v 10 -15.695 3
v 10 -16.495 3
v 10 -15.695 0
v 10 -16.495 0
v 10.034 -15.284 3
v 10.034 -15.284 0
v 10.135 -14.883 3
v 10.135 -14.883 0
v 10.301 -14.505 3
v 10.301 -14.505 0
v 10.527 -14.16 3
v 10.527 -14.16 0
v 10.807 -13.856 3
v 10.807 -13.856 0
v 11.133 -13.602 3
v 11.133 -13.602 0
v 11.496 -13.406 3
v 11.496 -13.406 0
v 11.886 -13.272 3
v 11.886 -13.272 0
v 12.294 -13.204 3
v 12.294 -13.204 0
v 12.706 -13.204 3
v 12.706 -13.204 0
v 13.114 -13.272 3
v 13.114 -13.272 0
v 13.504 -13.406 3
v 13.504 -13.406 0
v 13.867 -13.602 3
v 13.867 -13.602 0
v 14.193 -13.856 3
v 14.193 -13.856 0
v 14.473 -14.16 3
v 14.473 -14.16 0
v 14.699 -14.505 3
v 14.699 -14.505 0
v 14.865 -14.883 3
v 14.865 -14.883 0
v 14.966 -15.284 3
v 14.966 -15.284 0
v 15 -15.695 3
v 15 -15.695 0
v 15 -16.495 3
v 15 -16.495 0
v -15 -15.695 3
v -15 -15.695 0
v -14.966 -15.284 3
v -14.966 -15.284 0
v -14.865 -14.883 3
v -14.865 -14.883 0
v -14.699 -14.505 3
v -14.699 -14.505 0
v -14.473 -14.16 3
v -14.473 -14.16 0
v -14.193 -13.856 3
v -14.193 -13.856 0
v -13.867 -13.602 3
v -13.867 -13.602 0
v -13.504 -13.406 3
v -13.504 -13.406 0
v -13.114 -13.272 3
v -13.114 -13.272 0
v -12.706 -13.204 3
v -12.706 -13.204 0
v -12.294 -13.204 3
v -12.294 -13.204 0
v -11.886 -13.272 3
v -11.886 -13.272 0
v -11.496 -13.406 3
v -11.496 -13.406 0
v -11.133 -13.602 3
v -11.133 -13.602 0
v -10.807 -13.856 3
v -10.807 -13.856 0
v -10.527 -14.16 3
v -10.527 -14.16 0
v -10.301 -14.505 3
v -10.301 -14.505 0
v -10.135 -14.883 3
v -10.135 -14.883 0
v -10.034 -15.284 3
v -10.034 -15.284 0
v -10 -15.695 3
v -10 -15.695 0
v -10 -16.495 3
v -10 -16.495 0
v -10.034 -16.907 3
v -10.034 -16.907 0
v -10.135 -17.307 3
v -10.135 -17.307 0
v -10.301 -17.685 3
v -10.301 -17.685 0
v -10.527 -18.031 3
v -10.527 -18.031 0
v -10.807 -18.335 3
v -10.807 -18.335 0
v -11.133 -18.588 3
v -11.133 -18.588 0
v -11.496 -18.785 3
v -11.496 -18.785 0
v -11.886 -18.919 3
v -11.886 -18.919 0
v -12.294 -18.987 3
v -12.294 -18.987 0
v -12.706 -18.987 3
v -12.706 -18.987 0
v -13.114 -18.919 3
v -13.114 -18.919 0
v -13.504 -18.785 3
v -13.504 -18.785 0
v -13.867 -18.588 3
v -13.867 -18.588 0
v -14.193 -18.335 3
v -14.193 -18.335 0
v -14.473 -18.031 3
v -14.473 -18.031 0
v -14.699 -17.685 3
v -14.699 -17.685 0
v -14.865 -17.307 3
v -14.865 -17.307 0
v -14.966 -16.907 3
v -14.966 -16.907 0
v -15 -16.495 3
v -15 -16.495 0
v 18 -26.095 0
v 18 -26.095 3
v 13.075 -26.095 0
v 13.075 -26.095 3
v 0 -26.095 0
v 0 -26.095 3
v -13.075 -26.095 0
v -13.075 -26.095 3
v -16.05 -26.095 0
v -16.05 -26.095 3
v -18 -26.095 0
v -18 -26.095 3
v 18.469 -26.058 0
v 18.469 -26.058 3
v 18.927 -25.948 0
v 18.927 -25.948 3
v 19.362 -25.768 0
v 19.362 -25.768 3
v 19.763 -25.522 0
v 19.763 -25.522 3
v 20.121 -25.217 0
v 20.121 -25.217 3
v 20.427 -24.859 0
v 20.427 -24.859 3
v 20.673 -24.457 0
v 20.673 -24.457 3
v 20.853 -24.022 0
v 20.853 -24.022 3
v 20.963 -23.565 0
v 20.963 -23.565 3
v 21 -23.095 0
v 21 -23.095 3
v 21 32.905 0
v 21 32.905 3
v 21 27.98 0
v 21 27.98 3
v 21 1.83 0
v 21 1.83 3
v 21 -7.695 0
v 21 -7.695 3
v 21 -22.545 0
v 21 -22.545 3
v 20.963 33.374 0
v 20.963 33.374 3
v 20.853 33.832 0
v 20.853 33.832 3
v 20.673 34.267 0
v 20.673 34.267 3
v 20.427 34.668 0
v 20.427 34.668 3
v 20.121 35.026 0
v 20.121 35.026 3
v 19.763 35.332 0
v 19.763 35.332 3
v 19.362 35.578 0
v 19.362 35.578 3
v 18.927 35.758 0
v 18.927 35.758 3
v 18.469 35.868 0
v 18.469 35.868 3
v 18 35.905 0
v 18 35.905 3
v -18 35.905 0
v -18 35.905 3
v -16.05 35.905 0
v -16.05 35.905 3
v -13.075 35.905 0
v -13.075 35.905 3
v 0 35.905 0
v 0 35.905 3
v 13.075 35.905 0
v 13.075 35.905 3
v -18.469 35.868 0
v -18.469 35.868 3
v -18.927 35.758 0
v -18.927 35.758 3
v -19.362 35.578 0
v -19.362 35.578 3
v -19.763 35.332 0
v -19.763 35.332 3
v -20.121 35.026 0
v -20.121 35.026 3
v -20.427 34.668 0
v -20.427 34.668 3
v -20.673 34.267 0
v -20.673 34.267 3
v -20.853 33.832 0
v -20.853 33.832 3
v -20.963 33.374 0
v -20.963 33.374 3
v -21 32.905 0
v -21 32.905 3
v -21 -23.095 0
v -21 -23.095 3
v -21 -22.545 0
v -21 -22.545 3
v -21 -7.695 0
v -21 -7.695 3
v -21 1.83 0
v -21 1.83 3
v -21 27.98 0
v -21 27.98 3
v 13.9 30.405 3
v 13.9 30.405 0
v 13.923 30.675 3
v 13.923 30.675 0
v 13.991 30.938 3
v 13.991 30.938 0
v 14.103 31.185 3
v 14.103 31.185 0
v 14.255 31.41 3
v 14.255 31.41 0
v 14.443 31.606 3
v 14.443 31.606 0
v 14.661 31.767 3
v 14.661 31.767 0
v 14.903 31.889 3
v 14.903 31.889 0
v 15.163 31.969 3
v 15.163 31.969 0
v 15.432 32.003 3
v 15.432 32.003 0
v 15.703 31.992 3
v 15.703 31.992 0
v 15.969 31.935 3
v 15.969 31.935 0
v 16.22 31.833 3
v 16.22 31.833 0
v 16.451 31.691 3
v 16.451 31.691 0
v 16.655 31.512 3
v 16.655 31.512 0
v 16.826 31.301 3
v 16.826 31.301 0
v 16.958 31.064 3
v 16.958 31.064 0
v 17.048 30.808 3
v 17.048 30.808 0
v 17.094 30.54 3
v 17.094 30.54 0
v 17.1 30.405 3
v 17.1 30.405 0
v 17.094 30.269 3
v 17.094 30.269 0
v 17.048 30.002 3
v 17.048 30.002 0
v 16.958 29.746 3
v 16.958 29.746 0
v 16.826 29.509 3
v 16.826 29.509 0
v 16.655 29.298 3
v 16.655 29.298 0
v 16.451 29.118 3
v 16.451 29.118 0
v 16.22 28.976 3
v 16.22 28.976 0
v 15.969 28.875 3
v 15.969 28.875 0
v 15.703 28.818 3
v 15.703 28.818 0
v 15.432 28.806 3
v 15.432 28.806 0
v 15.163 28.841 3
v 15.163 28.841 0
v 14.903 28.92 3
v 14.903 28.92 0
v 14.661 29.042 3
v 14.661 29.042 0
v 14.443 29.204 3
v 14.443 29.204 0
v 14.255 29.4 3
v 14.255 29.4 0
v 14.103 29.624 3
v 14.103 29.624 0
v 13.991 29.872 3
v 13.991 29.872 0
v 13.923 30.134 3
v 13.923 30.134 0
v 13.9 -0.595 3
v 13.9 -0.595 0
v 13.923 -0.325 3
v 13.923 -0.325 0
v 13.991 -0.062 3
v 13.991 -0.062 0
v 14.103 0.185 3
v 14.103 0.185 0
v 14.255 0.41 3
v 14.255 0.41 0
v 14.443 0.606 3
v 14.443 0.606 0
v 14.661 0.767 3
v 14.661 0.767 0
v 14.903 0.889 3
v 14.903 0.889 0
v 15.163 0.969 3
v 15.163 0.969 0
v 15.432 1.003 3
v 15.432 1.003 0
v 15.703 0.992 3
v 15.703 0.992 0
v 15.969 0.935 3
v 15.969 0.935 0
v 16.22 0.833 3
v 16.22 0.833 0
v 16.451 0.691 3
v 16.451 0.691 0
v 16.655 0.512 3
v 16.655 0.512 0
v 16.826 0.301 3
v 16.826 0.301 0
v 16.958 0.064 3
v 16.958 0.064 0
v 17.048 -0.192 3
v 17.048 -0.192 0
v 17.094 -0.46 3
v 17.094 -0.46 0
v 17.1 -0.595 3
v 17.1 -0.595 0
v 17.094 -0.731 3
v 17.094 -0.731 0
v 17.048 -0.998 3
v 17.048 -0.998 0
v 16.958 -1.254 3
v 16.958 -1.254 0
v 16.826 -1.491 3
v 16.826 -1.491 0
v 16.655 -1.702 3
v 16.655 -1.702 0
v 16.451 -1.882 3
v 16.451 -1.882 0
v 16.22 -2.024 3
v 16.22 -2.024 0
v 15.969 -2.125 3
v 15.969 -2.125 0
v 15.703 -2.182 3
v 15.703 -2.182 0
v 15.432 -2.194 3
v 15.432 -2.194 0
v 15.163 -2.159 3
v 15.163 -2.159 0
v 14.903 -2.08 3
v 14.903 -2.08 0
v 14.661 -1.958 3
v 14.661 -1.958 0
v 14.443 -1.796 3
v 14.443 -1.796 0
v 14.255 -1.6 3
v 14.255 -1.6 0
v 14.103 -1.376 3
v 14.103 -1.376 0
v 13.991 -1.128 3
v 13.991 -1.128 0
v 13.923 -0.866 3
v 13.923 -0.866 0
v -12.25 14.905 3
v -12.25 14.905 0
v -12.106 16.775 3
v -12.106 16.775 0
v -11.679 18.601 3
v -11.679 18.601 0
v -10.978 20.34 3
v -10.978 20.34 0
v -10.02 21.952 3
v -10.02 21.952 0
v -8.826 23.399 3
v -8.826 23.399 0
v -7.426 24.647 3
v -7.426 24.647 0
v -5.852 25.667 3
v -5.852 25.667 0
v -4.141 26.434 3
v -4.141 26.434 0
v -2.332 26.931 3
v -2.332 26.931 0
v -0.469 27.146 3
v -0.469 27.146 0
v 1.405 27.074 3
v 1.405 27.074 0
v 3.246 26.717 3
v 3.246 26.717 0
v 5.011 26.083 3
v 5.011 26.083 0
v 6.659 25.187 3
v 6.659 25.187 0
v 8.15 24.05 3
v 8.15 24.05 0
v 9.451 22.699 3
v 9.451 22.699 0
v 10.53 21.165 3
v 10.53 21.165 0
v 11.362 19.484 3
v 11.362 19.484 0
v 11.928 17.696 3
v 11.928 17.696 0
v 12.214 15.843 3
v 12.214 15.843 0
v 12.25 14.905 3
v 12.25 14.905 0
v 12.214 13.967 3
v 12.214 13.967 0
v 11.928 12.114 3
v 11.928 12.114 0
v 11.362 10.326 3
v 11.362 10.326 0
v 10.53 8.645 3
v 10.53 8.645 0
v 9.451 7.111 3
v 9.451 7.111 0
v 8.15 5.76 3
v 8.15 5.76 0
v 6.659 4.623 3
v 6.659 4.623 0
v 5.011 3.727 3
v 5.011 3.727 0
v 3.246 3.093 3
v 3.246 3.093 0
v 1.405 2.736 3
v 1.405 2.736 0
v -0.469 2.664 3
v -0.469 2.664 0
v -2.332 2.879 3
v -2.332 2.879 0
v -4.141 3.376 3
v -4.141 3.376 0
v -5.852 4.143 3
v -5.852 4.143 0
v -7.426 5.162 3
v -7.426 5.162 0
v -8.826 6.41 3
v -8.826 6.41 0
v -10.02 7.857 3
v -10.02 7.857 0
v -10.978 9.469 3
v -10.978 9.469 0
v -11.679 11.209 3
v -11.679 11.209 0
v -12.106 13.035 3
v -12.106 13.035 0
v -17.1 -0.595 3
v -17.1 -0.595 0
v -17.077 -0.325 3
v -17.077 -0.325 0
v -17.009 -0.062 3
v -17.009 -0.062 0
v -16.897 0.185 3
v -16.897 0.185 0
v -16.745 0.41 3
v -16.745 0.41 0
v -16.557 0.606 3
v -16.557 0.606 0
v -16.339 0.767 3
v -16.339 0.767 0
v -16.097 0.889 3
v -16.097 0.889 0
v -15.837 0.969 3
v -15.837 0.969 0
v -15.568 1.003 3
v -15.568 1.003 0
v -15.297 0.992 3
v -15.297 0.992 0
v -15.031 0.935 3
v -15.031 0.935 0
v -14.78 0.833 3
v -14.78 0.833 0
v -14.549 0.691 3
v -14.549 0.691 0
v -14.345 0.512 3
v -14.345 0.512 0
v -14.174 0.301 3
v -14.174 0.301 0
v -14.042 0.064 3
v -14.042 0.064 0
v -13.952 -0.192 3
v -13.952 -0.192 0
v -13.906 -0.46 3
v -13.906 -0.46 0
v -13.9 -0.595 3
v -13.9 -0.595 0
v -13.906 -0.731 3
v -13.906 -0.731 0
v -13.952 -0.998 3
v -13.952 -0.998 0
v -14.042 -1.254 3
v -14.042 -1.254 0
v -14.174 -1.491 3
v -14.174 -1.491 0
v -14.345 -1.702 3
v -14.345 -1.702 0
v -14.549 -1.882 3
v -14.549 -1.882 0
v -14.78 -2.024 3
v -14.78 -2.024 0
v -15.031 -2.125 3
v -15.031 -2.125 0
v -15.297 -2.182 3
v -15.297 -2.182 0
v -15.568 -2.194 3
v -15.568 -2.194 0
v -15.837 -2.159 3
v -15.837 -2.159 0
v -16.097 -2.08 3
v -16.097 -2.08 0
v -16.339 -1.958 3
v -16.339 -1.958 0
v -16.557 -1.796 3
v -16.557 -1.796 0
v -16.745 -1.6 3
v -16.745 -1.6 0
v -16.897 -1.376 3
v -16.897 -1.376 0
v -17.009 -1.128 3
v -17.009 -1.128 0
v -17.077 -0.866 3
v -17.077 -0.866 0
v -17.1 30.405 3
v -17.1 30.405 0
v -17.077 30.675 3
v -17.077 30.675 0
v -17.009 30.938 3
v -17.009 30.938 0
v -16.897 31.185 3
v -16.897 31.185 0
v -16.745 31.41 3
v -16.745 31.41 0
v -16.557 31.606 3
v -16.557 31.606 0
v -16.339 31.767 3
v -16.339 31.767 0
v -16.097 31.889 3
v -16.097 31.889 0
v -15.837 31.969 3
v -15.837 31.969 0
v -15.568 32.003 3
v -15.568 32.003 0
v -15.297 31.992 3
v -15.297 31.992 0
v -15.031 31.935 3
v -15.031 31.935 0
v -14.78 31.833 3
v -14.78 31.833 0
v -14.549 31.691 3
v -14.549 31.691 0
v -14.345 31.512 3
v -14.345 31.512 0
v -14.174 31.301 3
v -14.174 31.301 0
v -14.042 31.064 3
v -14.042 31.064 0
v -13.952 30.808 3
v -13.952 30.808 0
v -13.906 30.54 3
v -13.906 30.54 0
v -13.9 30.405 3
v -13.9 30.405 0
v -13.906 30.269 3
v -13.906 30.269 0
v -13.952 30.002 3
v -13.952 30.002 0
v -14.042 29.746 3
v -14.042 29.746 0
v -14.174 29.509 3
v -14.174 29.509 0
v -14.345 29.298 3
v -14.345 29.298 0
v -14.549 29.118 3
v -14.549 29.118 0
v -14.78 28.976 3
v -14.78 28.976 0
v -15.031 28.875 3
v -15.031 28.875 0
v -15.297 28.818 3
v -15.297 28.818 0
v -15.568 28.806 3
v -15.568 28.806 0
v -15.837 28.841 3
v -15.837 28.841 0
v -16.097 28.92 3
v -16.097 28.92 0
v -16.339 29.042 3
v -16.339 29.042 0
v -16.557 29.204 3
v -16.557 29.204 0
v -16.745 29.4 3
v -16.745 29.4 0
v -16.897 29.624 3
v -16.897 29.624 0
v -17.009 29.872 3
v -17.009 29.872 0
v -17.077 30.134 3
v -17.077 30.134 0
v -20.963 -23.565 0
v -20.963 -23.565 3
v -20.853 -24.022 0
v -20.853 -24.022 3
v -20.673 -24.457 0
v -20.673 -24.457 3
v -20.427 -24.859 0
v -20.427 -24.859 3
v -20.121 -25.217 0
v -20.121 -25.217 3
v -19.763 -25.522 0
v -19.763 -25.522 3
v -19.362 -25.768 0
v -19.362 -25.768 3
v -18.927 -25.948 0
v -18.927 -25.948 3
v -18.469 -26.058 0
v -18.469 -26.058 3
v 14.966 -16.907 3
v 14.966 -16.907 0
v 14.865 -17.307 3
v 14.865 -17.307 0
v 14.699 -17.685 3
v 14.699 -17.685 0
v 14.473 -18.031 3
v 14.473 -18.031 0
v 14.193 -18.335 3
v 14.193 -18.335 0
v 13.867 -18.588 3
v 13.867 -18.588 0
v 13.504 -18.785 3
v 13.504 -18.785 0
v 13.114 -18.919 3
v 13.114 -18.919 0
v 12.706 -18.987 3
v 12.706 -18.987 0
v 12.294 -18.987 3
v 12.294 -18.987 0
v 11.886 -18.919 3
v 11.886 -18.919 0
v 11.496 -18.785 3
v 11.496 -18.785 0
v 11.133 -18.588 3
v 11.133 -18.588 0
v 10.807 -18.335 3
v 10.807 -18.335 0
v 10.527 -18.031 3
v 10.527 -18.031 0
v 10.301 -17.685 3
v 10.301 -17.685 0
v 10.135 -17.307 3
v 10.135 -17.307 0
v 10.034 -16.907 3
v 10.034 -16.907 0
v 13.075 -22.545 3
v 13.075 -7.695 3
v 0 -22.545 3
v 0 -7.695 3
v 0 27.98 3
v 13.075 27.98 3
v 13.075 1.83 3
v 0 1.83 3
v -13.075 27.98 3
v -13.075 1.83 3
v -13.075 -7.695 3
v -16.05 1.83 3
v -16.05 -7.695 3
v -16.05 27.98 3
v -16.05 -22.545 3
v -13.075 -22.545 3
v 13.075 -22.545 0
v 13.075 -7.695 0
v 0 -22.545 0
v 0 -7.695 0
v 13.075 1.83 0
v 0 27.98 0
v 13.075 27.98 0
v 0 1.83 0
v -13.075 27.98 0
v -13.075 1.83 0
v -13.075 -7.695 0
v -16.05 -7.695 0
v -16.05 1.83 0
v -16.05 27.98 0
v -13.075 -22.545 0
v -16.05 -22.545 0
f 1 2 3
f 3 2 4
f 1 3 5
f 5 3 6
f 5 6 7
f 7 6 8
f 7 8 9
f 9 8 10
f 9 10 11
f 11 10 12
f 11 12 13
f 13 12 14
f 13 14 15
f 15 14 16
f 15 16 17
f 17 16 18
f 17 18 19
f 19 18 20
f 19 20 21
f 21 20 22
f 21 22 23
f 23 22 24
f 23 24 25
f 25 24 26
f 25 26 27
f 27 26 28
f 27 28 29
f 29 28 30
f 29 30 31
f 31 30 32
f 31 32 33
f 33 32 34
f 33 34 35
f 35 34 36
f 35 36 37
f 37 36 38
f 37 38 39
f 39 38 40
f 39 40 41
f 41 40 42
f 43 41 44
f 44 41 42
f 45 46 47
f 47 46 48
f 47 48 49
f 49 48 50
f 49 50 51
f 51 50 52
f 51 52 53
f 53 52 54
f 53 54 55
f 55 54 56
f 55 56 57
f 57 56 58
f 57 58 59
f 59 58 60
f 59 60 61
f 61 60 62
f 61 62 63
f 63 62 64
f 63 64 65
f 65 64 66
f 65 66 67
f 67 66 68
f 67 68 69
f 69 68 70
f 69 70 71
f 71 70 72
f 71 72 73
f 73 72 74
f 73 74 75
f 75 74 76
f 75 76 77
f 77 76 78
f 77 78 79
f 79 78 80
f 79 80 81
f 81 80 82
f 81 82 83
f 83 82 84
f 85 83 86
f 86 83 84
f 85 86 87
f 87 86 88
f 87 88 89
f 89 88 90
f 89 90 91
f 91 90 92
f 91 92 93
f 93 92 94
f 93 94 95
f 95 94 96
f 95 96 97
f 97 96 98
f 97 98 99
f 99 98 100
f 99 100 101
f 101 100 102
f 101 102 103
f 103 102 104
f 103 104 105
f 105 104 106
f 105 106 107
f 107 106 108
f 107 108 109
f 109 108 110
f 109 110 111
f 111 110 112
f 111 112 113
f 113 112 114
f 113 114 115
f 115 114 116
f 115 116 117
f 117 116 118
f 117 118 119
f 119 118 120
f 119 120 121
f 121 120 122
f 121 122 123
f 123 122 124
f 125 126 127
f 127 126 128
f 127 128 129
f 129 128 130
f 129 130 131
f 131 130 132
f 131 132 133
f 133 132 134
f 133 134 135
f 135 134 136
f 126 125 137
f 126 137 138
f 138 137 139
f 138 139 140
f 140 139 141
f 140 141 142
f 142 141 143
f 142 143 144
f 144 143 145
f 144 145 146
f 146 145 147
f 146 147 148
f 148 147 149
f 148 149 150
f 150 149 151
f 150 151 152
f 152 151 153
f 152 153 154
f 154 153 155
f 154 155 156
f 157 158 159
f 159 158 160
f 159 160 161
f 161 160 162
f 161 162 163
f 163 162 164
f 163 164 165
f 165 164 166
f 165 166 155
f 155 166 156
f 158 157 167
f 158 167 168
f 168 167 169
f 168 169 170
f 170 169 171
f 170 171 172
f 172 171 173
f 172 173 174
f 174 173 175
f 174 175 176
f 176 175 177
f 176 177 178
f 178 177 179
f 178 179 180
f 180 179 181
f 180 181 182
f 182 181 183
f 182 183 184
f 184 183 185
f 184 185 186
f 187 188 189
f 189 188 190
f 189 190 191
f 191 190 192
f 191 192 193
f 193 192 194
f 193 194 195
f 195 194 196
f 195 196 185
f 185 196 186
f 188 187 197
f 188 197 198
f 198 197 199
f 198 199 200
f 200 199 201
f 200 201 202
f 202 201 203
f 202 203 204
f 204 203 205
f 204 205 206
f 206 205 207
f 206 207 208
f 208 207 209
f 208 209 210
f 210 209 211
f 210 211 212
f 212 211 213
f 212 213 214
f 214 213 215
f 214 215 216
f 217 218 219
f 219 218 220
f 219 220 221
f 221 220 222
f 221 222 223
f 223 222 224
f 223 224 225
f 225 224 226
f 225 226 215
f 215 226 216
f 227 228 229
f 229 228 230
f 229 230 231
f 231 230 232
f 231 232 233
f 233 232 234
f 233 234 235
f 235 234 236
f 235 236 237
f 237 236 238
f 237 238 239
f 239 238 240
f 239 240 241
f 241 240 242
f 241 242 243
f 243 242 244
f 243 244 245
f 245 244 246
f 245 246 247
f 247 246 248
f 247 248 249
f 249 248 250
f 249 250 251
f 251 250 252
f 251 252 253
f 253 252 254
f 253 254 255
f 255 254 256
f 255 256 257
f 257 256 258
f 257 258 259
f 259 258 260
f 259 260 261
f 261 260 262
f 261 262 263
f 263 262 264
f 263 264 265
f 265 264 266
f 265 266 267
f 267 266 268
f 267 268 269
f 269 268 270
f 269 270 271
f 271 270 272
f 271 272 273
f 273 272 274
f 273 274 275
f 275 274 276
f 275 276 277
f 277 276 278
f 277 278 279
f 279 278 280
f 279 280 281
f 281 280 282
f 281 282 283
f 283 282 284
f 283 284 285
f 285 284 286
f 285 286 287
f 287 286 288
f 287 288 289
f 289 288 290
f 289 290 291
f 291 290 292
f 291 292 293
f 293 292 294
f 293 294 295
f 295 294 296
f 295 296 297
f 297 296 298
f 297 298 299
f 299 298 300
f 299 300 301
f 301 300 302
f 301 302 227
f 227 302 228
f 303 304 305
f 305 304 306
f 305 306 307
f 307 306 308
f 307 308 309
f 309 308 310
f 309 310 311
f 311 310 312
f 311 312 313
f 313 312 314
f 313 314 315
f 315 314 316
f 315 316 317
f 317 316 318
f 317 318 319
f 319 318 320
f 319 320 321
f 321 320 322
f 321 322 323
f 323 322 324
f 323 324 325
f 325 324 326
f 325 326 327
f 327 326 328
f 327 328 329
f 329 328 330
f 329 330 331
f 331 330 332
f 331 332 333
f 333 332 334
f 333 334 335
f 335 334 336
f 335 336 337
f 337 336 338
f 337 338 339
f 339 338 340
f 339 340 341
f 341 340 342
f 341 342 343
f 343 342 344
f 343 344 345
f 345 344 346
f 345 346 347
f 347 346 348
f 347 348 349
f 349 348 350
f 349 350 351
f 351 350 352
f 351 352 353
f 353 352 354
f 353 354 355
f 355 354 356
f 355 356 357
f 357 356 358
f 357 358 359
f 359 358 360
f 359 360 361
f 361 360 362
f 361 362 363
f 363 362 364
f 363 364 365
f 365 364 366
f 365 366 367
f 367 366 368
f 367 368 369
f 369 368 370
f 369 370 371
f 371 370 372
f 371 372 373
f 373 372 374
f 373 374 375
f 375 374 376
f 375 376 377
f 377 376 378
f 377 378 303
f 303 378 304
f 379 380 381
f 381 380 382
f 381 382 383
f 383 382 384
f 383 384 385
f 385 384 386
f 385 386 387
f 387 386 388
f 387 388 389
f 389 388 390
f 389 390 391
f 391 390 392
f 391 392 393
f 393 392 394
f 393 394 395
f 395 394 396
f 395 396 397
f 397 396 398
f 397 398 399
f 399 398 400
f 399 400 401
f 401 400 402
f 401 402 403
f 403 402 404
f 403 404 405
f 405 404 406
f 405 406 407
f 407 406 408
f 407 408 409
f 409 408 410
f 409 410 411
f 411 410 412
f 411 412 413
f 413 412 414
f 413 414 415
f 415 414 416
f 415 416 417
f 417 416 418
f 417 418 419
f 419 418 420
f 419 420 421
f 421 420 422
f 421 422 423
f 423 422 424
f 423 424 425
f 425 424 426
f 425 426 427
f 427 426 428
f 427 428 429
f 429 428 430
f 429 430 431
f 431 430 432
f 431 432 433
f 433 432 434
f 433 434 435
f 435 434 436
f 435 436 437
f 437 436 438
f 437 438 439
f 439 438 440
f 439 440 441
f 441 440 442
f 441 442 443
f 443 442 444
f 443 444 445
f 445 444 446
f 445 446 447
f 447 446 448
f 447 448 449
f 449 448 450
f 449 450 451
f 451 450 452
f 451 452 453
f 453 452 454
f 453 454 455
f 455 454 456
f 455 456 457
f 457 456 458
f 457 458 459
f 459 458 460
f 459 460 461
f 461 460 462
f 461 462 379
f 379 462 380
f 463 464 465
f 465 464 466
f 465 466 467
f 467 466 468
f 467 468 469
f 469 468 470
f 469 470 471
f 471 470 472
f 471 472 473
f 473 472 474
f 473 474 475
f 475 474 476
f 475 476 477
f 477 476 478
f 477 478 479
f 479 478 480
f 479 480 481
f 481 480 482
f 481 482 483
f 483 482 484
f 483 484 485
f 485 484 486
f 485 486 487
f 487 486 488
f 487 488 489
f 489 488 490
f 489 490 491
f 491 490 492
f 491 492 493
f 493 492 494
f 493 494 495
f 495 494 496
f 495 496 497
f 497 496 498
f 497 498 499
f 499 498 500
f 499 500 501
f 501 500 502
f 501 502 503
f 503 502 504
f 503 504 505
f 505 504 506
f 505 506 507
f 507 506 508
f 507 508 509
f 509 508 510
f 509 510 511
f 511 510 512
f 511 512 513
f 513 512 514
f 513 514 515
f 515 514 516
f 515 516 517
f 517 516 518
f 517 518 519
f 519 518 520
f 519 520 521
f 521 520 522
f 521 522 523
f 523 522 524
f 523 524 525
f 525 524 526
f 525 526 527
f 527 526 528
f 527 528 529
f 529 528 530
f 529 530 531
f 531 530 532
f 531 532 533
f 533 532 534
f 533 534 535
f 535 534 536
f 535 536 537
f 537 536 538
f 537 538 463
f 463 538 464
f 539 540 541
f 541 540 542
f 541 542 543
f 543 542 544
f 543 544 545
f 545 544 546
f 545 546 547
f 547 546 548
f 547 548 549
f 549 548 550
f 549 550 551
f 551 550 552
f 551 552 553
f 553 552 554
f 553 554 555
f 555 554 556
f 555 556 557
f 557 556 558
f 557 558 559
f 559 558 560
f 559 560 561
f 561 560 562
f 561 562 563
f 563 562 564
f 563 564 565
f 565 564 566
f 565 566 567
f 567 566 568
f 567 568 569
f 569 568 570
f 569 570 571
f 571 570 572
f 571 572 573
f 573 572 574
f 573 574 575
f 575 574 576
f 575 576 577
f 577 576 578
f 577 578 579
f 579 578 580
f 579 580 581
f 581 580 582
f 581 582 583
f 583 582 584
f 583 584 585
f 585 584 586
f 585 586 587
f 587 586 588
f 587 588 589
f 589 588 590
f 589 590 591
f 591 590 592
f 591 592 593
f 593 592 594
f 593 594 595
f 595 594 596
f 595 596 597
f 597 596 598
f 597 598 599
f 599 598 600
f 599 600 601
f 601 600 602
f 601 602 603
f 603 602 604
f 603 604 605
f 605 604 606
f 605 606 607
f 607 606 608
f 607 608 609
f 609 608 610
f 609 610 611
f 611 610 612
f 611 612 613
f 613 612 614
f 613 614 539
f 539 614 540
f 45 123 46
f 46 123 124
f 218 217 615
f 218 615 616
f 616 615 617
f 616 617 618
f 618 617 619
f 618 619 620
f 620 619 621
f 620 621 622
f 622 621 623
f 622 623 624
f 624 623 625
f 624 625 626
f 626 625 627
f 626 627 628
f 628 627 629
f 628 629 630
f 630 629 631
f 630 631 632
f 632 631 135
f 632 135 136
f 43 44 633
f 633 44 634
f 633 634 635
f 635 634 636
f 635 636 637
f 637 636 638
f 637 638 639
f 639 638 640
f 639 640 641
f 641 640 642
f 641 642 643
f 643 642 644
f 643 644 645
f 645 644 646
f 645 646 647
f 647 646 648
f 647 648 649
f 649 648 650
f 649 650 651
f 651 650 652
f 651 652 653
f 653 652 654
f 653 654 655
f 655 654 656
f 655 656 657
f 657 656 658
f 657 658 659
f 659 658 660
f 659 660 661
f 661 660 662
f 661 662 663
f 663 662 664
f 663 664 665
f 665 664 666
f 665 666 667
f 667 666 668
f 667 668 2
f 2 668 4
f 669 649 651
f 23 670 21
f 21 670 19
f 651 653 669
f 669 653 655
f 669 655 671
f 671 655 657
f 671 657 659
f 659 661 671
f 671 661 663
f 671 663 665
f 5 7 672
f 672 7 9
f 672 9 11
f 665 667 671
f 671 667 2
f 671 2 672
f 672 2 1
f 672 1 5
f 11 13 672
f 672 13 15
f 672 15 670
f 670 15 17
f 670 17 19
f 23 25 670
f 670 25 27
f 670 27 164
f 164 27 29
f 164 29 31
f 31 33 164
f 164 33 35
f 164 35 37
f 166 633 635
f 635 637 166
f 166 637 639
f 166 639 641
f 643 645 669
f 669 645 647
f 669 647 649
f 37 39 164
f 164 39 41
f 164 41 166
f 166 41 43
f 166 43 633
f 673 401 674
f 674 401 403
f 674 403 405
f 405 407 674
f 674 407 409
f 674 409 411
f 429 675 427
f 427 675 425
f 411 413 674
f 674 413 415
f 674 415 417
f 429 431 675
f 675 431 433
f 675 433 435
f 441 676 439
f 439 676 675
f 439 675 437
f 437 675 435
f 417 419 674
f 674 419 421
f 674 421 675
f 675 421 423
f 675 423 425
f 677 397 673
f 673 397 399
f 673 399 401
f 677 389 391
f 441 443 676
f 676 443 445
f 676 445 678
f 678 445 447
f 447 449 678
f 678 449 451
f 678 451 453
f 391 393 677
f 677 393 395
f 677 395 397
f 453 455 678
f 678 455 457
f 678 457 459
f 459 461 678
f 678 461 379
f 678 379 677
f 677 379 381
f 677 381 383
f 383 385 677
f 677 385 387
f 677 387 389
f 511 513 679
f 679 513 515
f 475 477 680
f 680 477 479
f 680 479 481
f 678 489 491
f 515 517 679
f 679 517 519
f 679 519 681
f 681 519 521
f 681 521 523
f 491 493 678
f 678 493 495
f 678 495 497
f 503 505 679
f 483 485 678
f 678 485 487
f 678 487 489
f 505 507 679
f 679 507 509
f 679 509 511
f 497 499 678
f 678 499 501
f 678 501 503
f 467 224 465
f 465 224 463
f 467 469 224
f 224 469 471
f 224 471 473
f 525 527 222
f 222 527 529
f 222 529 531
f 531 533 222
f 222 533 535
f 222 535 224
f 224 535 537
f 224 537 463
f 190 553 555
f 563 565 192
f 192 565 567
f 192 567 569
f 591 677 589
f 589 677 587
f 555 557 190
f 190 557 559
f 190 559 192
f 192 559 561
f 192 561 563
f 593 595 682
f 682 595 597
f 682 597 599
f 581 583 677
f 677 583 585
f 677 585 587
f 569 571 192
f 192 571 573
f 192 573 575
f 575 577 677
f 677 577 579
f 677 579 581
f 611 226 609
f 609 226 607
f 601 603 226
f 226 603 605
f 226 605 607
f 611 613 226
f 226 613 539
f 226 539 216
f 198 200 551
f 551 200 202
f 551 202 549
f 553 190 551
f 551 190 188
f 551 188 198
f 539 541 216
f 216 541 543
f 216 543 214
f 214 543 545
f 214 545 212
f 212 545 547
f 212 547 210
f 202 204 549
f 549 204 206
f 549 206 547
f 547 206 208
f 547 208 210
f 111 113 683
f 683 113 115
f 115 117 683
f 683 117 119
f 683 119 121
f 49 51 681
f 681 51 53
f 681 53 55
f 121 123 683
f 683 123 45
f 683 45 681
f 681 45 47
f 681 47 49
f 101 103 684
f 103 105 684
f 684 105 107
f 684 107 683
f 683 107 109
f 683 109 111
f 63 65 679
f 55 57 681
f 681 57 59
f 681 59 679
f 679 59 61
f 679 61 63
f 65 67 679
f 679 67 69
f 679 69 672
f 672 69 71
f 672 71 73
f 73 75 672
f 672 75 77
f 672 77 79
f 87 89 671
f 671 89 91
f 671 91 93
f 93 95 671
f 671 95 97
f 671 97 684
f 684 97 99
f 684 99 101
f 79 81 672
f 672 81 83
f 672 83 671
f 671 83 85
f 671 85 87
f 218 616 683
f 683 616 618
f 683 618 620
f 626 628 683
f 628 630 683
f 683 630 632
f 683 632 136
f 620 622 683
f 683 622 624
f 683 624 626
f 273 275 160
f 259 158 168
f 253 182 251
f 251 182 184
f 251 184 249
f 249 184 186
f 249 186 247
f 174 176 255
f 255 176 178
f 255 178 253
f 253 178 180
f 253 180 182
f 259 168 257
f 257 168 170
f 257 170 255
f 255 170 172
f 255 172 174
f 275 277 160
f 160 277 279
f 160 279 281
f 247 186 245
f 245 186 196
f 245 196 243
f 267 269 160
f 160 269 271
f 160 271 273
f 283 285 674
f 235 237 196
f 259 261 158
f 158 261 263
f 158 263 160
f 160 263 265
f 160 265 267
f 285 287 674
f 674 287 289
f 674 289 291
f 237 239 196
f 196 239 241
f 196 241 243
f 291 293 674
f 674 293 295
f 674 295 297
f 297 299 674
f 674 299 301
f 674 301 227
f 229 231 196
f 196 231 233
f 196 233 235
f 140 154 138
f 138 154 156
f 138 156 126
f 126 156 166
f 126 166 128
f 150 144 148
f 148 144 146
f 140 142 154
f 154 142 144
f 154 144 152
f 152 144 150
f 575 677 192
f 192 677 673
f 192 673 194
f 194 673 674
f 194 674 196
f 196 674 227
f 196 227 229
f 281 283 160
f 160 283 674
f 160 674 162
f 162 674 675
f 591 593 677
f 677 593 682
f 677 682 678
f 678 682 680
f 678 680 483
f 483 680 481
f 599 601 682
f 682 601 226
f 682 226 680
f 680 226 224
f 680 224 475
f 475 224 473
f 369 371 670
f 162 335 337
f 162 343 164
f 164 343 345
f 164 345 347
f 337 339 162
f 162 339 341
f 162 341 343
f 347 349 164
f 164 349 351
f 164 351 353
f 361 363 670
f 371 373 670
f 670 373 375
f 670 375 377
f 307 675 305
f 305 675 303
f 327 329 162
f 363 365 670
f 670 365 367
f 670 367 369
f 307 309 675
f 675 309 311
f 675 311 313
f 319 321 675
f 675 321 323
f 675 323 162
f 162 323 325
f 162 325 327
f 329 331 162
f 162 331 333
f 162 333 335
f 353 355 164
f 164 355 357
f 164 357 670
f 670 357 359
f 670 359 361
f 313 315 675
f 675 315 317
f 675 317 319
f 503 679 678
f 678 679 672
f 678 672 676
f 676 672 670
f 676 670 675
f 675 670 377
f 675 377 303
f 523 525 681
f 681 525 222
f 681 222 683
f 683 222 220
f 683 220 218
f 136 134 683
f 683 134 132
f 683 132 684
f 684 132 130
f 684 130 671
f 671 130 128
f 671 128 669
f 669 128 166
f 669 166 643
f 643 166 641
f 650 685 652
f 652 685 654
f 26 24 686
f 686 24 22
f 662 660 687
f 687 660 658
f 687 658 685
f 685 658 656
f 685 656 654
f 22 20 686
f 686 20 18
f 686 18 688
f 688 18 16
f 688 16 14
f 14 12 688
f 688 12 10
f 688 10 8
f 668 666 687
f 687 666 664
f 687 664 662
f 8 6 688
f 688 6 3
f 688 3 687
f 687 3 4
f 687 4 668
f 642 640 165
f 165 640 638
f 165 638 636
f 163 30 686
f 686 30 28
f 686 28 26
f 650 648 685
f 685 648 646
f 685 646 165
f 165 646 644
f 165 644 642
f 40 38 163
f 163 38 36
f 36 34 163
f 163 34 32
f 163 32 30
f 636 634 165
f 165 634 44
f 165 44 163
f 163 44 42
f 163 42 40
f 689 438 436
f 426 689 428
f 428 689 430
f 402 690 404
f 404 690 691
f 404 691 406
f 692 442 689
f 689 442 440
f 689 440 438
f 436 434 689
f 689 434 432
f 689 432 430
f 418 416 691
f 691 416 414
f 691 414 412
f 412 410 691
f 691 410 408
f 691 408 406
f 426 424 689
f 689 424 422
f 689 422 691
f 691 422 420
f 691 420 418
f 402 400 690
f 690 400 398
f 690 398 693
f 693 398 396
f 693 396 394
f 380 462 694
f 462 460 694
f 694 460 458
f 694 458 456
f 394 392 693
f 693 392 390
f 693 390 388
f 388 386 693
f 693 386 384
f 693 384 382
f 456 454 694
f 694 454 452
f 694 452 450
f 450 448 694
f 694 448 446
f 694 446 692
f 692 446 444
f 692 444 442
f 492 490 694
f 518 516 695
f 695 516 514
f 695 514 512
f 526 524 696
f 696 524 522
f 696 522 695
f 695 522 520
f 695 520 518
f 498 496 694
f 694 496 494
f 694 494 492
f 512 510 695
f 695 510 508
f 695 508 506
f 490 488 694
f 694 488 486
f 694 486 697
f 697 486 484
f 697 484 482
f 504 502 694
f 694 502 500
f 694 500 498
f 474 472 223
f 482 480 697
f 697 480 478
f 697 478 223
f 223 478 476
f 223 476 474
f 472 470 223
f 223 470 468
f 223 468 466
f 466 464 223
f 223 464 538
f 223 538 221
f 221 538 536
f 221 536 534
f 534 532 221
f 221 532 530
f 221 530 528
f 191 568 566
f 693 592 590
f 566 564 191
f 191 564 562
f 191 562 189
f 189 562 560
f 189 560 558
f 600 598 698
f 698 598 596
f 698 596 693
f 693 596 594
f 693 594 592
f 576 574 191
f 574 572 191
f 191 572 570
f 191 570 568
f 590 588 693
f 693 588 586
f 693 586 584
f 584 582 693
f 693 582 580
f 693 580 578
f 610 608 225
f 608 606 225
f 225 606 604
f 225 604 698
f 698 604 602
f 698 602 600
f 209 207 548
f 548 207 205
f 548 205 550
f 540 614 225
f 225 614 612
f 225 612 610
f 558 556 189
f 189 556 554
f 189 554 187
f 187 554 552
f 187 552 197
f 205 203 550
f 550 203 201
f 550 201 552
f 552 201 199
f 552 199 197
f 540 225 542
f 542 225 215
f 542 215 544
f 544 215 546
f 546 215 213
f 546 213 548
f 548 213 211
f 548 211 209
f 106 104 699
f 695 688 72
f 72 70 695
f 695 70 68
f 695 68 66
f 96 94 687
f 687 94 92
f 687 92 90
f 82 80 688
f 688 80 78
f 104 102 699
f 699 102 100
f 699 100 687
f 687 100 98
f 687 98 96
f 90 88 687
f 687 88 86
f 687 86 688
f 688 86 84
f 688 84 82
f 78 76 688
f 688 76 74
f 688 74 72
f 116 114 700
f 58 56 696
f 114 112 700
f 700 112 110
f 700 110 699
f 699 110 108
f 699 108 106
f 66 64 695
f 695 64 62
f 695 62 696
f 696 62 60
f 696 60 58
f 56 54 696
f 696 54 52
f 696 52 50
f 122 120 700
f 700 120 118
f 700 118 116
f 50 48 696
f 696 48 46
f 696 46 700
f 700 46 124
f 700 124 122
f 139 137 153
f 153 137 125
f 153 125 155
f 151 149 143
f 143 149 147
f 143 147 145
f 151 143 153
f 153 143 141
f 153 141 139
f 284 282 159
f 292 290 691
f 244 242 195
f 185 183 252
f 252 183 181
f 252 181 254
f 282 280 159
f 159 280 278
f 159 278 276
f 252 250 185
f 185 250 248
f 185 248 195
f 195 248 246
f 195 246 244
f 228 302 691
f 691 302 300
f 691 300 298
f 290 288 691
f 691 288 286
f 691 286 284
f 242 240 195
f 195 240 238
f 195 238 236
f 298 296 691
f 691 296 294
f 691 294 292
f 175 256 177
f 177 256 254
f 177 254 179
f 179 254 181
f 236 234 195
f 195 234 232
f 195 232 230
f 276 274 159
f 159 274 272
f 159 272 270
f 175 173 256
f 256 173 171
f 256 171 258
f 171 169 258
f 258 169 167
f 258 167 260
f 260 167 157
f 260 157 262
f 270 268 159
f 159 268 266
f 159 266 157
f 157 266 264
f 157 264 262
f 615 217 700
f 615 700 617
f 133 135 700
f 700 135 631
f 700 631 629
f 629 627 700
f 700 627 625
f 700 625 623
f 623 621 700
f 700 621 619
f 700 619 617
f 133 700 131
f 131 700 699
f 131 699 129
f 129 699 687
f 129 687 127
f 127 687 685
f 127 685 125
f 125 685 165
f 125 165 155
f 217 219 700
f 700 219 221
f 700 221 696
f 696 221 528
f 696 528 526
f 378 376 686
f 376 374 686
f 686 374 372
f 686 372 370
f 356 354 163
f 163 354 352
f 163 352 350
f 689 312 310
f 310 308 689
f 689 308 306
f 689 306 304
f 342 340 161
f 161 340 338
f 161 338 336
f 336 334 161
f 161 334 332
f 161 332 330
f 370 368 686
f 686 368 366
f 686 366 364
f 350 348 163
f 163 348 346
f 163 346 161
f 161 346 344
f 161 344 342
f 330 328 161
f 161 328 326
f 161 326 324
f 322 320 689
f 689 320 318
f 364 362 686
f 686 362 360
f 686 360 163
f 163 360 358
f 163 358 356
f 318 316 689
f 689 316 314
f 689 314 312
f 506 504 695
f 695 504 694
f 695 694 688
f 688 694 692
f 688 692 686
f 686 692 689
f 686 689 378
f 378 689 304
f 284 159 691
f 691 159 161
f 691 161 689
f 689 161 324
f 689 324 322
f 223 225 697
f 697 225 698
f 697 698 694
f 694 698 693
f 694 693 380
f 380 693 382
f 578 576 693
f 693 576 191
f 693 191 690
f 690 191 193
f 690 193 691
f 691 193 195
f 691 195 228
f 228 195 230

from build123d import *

# Parameters (mm, degrees)
SKETCH_1_R      = 1.6
EXTRUDE_1_DEPTH = 3


with BuildPart() as part:
    # 草图1 → 凸台-拉伸1 (new body)
    # profile 1 of 2: a face of its own
    with BuildSketch(Plane.XY):
        with BuildLine():
            Line((0, 27.154799922), (0, 35.904799922))
            Line((0, 35.904799922), (-18, 35.904799922))
            ThreePointArc((-18, 35.904799922), (-20.121320344, 35.026120265), (-21, 32.904799922))
            Line((-21, 32.904799922), (-21, -23.095200078))
            ThreePointArc((-21, -23.095200078), (-20.121320344, -25.216520422), (-18, -26.095200078))
            Line((-18, -26.095200078), (0, -26.095200078))
            Line((0, -26.095200078), (0, 2.654799922))
            ThreePointArc((0, 2.654799922), (-12.25, 14.904799922), (0, 27.154799922))
        make_face()
        with BuildLine():
            ThreePointArc((-10, -16.495200078), (-12.5, -18.995200078), (-15, -16.495200078))
            Line((-15, -16.495200078), (-15, -15.695200078))
            ThreePointArc((-15, -15.695200078), (-12.5, -13.195200078), (-10, -15.695200078))
            Line((-10, -15.695200078), (-10, -16.495200078))
        make_face(mode=Mode.SUBTRACT)
        with Locations((-15.5, -0.595200078)):
            Circle(SKETCH_1_R, mode=Mode.SUBTRACT)
        with Locations((-15.5, 30.404799922)):
            Circle(SKETCH_1_R, mode=Mode.SUBTRACT)
    # profile 2 of 2: a face of its own
    with BuildSketch(Plane.XY):
        with BuildLine():
            Line((18, 35.904799922), (0, 35.904799922))
            Line((0, 35.904799922), (0, 27.154799922))
            ThreePointArc((0, 27.154799922), (8.66205807, 23.566857991), (12.25, 14.904799922))
            ThreePointArc((12.25, 14.904799922), (8.66205807, 6.242741852), (0, 2.654799922))
            Line((0, 2.654799922), (0, -26.095200078))
            Line((0, -26.095200078), (18, -26.095200078))
            ThreePointArc((18, -26.095200078), (20.121320344, -25.216520422), (21, -23.095200078))
            Line((21, -23.095200078), (21, 32.904799922))
            ThreePointArc((21, 32.904799922), (20.121320344, 35.026120265), (18, 35.904799922))
        make_face()
        with BuildLine():
            Line((15, -15.695200078), (15, -16.495200078))
            ThreePointArc((15, -16.495200078), (12.5, -18.995200078), (10, -16.495200078))
            Line((10, -16.495200078), (10, -15.695200078))
            ThreePointArc((10, -15.695200078), (12.5, -13.195200078), (15, -15.695200078))
        make_face(mode=Mode.SUBTRACT)
        with Locations((15.5, -0.595200078)):
            Circle(SKETCH_1_R, mode=Mode.SUBTRACT)
        with Locations((15.5, 30.404799922)):
            Circle(SKETCH_1_R, mode=Mode.SUBTRACT)
    extrude(amount=EXTRUDE_1_DEPTH)


solid = part.part
